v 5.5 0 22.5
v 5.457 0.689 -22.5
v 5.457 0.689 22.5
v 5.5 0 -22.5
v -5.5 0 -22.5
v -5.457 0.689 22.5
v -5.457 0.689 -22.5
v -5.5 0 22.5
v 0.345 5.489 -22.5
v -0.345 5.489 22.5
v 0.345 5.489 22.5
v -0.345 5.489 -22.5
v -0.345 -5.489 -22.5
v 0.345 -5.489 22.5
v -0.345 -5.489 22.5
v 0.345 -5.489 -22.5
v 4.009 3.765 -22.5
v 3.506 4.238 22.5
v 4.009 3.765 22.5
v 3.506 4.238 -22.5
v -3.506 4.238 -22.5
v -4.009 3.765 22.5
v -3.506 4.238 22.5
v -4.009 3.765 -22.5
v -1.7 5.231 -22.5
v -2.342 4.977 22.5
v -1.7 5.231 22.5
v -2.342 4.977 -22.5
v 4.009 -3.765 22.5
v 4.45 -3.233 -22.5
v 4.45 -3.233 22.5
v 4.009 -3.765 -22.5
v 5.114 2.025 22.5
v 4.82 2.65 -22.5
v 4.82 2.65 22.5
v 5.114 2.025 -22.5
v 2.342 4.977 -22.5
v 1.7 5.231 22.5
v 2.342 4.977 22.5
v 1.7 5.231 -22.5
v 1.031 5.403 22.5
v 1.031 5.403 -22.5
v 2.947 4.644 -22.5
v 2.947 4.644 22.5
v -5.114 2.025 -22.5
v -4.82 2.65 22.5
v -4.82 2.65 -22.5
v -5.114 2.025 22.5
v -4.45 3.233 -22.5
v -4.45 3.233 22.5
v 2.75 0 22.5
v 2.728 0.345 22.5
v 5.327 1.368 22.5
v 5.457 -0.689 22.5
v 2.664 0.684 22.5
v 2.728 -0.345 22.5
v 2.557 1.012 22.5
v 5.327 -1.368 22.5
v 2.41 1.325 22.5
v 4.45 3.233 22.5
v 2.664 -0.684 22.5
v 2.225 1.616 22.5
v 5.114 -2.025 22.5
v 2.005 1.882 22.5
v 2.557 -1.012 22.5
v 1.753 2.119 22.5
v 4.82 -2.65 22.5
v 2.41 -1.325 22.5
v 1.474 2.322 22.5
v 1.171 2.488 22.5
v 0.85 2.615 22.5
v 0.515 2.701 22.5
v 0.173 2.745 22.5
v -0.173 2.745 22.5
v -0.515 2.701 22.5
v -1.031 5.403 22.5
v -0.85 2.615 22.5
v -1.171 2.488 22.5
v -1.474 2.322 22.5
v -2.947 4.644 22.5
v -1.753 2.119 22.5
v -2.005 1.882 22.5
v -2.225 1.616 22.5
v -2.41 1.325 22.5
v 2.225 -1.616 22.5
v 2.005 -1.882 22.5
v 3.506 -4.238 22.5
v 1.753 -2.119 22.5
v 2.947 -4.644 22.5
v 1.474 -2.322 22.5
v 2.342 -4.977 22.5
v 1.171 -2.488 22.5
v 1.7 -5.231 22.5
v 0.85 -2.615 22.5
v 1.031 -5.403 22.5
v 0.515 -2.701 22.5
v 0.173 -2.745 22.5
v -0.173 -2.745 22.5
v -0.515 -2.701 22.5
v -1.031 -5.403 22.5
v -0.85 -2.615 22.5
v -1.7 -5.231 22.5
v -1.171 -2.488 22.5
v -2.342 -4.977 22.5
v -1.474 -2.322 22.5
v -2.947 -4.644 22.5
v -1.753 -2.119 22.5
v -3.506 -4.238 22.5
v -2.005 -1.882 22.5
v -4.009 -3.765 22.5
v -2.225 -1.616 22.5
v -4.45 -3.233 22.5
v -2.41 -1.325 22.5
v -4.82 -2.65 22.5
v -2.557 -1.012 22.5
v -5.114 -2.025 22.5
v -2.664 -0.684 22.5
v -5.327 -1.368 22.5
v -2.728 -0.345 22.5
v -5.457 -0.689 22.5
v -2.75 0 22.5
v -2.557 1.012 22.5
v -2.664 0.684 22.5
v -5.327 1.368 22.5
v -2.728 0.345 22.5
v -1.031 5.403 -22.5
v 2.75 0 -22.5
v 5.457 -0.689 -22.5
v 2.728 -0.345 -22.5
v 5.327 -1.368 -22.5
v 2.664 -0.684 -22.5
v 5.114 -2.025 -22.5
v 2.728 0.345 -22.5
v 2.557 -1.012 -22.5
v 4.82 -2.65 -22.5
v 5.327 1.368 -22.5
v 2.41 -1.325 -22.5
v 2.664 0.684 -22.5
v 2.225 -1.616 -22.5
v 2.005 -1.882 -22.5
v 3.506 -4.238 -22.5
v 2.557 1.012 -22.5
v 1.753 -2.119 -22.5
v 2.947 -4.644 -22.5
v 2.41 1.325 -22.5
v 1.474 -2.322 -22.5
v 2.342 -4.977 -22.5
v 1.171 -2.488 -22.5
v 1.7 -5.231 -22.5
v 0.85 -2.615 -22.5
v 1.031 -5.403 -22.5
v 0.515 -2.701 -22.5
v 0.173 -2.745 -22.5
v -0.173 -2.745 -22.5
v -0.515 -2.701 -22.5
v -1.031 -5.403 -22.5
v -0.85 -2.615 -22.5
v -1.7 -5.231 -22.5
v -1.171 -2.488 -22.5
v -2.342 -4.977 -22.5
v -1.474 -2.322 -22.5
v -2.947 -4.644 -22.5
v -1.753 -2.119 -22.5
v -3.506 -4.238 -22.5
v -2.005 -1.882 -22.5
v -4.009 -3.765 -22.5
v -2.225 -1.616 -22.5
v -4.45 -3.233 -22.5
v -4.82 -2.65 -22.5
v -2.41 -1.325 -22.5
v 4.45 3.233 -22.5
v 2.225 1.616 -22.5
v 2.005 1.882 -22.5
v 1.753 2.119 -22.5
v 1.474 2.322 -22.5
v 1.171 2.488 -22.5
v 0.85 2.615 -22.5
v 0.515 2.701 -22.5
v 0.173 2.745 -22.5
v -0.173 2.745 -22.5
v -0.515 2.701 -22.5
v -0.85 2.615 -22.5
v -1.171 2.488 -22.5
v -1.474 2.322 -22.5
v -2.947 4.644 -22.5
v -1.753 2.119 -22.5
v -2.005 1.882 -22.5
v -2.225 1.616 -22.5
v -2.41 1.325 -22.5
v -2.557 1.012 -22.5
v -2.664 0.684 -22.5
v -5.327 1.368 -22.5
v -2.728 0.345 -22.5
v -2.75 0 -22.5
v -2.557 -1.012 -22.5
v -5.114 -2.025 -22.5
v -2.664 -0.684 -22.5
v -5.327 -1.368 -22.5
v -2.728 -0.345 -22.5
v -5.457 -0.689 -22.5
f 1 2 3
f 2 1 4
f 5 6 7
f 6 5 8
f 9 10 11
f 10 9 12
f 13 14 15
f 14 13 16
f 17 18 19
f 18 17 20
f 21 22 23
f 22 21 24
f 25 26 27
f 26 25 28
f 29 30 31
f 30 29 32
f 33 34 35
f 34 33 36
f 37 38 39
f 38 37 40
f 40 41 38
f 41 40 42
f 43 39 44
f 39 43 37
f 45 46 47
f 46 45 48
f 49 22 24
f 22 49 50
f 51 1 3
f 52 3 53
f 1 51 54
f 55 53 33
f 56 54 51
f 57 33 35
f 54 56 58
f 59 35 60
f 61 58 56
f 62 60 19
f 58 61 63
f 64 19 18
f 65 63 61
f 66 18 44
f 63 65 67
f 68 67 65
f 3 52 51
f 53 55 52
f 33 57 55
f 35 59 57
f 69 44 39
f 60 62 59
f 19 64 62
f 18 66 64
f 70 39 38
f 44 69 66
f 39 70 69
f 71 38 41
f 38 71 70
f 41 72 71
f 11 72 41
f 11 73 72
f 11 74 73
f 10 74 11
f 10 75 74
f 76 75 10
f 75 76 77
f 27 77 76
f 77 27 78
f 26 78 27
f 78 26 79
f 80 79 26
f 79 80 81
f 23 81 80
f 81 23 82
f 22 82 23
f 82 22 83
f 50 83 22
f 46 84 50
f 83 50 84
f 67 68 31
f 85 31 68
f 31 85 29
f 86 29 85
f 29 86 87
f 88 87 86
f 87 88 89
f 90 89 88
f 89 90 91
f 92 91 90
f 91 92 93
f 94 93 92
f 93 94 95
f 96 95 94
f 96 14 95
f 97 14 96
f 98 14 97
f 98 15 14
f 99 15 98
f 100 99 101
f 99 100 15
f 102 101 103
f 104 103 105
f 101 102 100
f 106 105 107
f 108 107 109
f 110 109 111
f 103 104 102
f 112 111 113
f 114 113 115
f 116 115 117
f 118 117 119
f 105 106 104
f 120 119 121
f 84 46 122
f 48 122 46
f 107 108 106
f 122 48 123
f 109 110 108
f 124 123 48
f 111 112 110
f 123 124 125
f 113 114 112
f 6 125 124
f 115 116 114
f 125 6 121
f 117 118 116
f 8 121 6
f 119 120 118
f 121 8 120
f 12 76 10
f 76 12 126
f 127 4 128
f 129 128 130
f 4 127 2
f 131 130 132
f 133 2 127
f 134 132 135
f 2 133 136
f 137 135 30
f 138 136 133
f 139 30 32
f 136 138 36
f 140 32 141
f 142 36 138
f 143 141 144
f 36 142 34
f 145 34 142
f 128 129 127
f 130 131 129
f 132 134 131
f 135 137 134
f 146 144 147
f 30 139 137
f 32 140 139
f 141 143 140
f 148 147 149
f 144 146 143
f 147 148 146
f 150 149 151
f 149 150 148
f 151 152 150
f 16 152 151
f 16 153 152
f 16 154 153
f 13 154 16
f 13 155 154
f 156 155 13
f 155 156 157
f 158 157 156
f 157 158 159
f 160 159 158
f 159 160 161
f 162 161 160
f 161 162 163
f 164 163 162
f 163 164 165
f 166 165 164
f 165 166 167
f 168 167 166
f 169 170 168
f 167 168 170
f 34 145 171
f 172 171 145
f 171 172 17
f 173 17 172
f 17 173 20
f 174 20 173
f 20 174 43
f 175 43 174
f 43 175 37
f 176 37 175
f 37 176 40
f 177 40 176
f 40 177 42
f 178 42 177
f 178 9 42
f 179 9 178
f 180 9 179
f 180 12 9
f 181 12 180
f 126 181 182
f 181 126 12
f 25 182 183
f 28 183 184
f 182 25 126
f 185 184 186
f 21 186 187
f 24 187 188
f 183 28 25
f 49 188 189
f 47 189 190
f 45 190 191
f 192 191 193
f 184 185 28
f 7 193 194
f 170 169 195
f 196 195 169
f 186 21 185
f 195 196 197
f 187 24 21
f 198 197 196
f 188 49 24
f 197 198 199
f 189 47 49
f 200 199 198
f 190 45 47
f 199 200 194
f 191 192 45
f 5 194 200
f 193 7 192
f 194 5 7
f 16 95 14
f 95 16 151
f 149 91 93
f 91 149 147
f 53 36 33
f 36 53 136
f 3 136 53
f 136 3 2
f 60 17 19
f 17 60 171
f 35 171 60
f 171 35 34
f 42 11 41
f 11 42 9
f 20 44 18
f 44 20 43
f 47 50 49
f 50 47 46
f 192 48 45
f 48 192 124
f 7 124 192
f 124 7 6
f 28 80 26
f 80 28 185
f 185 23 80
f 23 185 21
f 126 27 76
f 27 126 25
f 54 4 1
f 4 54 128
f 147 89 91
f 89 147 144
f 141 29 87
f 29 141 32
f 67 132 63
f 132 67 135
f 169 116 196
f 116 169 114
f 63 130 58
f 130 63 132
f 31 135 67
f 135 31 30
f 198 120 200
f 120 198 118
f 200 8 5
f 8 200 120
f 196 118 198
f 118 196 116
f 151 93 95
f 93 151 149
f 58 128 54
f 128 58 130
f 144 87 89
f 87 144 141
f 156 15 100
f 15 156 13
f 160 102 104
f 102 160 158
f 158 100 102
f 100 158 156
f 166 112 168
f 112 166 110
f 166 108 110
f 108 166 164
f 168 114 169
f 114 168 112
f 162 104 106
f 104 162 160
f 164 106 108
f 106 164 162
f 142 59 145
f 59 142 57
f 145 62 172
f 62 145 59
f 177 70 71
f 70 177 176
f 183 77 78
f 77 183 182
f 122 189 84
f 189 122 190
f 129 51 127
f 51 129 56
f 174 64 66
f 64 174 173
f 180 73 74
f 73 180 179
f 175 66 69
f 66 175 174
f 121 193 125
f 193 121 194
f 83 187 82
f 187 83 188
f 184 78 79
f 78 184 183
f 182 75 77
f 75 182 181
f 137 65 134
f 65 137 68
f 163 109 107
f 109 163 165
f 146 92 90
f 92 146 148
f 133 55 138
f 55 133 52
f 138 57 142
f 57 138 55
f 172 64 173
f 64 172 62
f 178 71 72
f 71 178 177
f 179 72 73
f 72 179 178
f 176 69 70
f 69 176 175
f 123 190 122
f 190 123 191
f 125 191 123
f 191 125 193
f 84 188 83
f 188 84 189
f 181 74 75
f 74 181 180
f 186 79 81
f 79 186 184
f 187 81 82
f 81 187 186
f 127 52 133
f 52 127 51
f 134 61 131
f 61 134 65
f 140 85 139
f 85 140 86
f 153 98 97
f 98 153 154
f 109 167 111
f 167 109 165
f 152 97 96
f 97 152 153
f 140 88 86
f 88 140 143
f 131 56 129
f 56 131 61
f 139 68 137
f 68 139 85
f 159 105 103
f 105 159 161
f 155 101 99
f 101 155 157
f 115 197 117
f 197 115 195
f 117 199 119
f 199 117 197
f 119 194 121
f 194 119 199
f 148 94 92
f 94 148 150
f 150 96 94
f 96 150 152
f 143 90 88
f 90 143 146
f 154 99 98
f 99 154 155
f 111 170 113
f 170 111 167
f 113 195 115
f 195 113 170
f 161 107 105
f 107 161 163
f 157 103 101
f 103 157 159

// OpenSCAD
$fn = 50;


difference() {
	union() {
		translate(v = [0, 0, -22.5000000000]) {
			cylinder(h = 45, r = 5.5000000000);
		}
	}
	union() {
		translate(v = [0, 0, -100.0000000000]) {
			cylinder(h = 200, r = 2.7500000000);
		}
	}
}
